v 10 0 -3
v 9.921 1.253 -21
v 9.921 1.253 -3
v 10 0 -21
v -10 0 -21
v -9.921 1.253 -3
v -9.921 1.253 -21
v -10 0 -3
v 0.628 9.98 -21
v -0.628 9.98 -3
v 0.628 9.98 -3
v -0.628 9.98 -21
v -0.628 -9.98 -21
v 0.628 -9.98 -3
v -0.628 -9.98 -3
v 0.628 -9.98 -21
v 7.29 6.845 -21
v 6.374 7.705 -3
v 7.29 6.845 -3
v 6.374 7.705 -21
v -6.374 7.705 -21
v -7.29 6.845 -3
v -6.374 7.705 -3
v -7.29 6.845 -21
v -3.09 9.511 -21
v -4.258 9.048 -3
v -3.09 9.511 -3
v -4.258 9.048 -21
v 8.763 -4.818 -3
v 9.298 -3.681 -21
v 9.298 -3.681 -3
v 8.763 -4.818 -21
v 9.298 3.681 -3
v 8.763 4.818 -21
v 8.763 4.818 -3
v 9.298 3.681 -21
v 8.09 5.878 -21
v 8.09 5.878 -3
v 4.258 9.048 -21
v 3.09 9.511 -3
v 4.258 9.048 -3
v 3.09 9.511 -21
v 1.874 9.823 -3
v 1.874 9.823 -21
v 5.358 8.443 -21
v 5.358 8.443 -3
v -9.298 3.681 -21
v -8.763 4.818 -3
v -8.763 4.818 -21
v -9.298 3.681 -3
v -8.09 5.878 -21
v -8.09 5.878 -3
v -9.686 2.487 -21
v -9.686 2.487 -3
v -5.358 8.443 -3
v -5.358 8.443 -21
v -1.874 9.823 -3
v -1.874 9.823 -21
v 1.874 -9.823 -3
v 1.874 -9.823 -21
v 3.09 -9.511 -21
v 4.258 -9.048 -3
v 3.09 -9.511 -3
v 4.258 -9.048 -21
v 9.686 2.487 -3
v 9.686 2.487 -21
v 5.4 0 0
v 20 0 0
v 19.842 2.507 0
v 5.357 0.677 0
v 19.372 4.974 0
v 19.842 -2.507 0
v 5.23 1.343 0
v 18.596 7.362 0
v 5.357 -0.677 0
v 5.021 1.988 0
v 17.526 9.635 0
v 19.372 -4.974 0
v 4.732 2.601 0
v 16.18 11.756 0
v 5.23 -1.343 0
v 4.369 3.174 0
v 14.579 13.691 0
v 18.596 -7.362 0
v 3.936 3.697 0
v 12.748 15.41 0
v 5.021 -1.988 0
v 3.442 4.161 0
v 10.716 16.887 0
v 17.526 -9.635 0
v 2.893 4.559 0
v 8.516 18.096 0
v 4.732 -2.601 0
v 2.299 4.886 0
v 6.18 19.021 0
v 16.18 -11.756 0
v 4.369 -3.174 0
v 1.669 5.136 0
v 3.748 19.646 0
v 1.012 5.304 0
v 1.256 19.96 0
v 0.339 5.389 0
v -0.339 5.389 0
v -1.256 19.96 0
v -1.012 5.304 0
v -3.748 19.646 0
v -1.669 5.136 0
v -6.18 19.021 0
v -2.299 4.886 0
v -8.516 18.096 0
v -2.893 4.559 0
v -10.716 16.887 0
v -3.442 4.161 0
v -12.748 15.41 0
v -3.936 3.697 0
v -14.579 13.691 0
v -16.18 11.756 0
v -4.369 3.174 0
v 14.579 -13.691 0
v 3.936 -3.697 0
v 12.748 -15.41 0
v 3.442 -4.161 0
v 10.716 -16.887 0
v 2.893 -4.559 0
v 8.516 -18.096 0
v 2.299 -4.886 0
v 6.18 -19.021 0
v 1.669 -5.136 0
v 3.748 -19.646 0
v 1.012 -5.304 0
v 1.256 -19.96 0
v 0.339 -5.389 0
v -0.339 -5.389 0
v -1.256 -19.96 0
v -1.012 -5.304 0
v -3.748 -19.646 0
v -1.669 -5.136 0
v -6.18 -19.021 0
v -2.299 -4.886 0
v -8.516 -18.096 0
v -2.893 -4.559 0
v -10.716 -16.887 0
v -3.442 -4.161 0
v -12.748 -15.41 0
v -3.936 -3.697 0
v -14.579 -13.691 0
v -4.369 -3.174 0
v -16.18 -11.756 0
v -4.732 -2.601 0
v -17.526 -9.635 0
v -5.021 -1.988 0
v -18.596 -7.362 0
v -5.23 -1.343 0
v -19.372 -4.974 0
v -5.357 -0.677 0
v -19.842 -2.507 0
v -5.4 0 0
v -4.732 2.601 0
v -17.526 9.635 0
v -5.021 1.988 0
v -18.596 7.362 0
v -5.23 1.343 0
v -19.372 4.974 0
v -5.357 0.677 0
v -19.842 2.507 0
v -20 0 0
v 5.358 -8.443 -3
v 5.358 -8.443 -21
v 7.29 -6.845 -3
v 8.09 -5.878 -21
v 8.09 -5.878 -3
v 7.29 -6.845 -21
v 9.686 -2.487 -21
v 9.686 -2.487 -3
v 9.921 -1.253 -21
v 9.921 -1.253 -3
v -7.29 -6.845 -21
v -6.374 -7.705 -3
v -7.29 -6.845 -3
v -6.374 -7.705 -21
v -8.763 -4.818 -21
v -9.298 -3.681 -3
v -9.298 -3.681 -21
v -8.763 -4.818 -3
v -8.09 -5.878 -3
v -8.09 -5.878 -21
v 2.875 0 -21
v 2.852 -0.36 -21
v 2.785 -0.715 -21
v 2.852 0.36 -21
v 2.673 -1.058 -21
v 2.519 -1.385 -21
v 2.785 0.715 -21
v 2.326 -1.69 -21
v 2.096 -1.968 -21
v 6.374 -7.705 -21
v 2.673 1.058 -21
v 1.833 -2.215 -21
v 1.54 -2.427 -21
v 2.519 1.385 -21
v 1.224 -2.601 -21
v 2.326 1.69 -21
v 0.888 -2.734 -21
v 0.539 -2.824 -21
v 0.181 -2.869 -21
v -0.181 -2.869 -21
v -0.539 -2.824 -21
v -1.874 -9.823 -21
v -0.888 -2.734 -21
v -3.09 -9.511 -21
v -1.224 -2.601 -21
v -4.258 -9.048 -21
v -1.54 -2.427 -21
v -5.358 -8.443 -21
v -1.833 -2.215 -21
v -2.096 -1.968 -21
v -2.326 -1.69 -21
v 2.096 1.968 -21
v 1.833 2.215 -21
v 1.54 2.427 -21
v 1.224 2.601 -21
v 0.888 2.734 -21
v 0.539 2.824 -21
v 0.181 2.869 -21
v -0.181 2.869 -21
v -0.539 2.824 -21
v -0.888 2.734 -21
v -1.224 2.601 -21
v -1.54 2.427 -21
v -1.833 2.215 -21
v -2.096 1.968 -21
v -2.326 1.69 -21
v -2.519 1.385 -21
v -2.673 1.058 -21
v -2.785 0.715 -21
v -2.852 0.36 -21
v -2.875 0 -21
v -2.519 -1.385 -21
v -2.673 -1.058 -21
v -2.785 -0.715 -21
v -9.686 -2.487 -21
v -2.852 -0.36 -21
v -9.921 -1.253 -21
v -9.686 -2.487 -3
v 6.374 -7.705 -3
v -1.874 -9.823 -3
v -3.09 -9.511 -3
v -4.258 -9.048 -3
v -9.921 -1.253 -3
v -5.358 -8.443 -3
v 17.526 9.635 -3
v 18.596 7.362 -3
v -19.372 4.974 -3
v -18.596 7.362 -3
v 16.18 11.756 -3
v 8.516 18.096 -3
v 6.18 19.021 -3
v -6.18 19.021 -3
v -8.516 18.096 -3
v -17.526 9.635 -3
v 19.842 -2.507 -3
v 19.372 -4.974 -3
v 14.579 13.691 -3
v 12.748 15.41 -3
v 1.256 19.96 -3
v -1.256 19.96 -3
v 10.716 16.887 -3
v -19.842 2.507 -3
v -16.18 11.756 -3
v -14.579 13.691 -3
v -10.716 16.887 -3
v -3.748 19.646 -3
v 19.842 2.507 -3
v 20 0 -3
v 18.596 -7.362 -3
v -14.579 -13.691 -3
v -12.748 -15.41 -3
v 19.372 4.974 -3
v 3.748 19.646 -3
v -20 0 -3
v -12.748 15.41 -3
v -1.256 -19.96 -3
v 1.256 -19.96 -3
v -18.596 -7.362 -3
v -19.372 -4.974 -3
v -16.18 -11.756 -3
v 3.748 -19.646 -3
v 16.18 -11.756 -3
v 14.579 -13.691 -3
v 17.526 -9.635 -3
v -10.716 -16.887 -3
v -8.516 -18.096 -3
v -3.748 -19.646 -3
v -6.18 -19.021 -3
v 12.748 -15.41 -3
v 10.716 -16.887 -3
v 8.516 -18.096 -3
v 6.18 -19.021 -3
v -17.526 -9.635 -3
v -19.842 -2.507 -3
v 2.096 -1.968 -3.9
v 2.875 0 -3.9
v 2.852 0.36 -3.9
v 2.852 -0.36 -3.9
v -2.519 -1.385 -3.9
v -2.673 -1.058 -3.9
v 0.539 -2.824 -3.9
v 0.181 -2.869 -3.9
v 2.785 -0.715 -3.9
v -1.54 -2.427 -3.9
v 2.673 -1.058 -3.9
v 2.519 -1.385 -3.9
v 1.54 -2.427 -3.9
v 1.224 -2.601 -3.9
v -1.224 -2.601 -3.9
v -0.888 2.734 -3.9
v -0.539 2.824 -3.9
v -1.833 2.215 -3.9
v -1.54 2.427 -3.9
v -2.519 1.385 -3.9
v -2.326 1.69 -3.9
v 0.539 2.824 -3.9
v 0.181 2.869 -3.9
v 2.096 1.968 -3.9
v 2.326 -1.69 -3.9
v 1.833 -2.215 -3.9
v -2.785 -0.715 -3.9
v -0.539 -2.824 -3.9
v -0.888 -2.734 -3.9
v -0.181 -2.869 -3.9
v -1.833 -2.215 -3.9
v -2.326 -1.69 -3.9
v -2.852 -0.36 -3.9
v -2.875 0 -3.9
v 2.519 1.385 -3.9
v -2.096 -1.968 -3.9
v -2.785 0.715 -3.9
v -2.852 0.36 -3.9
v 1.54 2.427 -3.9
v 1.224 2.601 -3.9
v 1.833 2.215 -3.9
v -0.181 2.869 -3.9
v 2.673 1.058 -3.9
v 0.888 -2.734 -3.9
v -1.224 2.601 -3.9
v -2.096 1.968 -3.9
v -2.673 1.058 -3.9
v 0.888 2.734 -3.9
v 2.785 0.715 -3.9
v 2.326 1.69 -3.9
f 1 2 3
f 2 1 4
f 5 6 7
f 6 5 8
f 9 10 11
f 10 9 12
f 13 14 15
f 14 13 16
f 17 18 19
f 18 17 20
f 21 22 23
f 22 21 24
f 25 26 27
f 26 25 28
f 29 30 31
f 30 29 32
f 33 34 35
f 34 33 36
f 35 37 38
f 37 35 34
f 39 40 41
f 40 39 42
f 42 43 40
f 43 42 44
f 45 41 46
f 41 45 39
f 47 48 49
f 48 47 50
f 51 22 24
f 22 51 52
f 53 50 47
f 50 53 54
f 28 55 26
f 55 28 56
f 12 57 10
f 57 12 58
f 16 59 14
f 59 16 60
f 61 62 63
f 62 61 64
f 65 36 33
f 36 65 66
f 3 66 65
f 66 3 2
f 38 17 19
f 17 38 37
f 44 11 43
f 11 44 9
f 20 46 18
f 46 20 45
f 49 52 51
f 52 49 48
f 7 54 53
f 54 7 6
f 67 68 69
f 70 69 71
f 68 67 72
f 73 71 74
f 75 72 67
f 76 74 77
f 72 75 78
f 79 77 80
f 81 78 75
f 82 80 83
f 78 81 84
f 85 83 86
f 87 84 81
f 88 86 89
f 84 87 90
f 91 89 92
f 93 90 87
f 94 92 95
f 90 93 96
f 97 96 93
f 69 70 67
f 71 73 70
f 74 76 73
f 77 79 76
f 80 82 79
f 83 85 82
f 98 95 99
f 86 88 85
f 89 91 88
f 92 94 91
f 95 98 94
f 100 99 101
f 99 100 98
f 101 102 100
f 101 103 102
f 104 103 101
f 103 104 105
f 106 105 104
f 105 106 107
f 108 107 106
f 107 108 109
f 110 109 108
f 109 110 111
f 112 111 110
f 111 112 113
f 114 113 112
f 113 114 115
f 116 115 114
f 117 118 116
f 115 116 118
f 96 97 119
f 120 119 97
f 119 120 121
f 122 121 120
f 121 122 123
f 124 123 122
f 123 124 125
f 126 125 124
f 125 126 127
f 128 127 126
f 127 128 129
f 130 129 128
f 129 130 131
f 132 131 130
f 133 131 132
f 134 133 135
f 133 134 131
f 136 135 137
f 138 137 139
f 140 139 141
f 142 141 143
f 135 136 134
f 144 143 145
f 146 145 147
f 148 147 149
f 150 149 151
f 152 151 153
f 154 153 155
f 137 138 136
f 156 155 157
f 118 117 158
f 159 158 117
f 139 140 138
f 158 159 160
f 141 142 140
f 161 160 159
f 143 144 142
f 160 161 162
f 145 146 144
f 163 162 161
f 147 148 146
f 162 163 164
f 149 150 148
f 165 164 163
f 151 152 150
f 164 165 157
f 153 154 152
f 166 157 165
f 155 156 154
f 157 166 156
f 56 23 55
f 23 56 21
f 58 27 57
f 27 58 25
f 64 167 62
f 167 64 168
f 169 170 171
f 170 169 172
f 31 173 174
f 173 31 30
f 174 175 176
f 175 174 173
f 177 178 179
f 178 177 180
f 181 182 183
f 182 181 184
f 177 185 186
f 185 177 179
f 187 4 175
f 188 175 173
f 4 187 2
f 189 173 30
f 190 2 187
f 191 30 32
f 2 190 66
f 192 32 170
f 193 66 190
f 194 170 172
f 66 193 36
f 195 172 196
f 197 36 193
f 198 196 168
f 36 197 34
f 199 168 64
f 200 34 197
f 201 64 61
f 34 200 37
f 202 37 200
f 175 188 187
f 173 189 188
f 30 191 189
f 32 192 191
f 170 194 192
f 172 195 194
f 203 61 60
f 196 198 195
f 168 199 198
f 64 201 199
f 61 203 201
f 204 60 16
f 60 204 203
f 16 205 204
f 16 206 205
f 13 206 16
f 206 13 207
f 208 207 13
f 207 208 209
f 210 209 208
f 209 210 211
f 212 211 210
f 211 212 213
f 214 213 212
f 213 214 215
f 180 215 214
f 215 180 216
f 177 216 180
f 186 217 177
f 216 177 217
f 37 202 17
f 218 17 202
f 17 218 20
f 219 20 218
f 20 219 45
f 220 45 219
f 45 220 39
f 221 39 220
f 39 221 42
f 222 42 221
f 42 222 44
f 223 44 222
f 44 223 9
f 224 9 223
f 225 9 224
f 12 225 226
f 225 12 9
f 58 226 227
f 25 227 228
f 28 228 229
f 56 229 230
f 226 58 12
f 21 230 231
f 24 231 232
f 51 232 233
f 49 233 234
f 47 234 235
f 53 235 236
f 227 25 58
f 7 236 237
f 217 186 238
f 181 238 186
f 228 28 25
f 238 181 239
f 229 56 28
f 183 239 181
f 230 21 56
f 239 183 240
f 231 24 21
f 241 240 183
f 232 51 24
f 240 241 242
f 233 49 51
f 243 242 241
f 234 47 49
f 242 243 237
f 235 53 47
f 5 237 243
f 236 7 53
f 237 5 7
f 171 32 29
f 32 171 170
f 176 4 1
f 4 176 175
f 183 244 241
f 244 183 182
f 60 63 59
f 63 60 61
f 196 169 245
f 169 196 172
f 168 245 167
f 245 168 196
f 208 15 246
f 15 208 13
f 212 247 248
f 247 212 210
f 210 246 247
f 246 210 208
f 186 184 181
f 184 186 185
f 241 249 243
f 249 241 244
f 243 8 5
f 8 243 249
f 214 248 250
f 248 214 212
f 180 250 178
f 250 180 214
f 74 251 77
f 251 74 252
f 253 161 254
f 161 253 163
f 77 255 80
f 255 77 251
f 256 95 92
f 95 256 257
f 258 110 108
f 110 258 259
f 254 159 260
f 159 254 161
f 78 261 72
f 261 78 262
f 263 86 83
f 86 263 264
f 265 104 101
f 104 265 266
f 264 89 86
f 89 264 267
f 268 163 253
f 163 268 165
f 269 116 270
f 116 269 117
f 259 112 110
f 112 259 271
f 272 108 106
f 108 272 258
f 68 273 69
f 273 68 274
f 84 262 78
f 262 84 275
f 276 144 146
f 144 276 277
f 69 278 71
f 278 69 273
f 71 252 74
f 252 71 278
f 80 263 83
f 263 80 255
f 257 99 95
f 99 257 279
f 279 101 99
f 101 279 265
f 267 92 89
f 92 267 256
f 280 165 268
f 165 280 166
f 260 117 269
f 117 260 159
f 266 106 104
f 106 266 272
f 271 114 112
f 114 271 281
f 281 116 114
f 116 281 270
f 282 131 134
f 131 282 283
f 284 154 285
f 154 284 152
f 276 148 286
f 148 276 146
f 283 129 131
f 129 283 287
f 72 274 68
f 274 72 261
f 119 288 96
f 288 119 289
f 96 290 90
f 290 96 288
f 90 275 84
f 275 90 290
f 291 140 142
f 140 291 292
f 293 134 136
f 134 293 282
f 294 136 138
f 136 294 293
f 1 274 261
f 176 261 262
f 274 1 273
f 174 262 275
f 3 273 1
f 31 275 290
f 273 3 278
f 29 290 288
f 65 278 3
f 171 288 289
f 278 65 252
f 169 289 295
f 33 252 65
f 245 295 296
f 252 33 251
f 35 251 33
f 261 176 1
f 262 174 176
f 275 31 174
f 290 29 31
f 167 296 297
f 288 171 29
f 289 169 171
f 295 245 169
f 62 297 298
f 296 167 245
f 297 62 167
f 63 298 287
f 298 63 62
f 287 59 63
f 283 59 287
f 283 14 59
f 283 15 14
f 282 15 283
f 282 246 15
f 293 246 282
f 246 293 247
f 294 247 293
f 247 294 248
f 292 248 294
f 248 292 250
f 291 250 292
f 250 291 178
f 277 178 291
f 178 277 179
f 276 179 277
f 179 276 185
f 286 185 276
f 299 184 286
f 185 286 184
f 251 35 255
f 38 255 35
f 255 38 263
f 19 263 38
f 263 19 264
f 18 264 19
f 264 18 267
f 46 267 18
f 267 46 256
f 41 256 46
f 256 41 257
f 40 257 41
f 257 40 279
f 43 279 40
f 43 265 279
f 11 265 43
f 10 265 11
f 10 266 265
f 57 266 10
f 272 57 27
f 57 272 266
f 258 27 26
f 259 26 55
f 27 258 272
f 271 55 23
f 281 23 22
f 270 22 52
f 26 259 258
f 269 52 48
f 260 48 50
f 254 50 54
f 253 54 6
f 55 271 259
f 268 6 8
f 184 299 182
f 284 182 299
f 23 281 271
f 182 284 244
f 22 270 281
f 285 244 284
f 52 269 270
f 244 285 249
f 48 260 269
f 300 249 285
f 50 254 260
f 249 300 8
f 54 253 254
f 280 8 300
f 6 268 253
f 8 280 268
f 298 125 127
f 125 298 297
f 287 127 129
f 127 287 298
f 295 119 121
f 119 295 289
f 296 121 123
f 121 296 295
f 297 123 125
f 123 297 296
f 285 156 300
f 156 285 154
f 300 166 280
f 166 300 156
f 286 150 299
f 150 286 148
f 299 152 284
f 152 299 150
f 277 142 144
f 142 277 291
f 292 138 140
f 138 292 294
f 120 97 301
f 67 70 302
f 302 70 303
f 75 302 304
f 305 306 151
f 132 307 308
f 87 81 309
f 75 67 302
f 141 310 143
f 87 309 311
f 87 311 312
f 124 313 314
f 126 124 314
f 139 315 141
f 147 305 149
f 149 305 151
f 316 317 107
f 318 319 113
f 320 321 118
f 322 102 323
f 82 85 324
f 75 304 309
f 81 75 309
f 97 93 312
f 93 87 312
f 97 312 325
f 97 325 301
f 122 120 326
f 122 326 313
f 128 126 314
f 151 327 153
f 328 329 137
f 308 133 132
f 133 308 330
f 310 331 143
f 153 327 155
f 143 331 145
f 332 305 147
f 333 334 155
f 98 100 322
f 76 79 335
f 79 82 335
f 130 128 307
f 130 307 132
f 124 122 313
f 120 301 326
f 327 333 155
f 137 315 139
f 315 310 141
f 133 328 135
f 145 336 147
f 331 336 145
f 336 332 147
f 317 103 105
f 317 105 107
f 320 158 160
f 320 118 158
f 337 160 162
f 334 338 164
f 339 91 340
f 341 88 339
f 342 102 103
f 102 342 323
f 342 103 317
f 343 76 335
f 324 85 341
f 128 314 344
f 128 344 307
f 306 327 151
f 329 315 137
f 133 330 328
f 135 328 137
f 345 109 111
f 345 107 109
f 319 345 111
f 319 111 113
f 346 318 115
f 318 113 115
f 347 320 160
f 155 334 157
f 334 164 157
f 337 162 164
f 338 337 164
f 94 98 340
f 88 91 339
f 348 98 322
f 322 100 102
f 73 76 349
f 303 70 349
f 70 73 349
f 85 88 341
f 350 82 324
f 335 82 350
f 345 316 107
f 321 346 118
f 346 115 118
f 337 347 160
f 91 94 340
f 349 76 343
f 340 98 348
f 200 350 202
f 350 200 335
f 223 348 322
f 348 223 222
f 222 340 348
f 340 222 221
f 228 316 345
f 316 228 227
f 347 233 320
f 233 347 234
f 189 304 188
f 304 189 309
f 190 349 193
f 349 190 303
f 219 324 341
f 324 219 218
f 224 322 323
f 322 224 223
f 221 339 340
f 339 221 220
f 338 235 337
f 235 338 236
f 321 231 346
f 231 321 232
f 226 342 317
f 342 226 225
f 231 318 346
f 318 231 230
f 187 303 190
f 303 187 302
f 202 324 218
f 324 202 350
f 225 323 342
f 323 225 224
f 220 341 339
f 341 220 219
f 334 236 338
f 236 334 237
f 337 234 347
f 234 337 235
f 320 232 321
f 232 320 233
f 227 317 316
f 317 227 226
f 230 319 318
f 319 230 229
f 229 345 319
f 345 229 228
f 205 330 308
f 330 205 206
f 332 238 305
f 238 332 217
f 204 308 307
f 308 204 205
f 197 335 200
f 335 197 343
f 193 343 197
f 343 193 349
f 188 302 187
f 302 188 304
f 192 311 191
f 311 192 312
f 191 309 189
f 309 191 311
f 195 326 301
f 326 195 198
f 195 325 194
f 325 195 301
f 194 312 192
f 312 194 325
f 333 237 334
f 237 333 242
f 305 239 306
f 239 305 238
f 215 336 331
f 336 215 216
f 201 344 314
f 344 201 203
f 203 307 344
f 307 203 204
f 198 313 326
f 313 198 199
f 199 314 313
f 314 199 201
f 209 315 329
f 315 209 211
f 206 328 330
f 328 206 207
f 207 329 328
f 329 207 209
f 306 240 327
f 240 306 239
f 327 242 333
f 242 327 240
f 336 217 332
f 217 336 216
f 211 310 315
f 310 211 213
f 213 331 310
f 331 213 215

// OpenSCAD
$fn = 50;


difference() {
	union() {
		translate(v = [0, 0, -21.0000000000]) {
			cylinder(h = 21, r = 10.0000000000);
		}
		translate(v = [0, 0, -3.0000000000]) {
			cylinder(h = 3, r = 20.0000000000);
		}
	}
	union() {
		translate(v = [0, 0, 0]) {
			rotate(a = [0, 0, 0]) {
				difference() {
					union() {
						#translate(v = [0, 0, -21.0000000000]) {
							cylinder(h = 21, r = 2.6000000000);
						}
						#translate(v = [0, 0, -3.9000000000]) {
							cylinder(h = 3.9000000000, r = 10.0000000000, r1 = 2.8750000000, r2 = 5.4000000000);
						}
						#translate(v = [0, 0, -21.0000000000]) {
							cylinder(h = 21, r = 2.8750000000);
						}
						#translate(v = [0, 0, -21.0000000000]) {
							cylinder(h = 21, r = 2.6000000000);
						}
					}
					union();
				}
			}
		}
	}
}
